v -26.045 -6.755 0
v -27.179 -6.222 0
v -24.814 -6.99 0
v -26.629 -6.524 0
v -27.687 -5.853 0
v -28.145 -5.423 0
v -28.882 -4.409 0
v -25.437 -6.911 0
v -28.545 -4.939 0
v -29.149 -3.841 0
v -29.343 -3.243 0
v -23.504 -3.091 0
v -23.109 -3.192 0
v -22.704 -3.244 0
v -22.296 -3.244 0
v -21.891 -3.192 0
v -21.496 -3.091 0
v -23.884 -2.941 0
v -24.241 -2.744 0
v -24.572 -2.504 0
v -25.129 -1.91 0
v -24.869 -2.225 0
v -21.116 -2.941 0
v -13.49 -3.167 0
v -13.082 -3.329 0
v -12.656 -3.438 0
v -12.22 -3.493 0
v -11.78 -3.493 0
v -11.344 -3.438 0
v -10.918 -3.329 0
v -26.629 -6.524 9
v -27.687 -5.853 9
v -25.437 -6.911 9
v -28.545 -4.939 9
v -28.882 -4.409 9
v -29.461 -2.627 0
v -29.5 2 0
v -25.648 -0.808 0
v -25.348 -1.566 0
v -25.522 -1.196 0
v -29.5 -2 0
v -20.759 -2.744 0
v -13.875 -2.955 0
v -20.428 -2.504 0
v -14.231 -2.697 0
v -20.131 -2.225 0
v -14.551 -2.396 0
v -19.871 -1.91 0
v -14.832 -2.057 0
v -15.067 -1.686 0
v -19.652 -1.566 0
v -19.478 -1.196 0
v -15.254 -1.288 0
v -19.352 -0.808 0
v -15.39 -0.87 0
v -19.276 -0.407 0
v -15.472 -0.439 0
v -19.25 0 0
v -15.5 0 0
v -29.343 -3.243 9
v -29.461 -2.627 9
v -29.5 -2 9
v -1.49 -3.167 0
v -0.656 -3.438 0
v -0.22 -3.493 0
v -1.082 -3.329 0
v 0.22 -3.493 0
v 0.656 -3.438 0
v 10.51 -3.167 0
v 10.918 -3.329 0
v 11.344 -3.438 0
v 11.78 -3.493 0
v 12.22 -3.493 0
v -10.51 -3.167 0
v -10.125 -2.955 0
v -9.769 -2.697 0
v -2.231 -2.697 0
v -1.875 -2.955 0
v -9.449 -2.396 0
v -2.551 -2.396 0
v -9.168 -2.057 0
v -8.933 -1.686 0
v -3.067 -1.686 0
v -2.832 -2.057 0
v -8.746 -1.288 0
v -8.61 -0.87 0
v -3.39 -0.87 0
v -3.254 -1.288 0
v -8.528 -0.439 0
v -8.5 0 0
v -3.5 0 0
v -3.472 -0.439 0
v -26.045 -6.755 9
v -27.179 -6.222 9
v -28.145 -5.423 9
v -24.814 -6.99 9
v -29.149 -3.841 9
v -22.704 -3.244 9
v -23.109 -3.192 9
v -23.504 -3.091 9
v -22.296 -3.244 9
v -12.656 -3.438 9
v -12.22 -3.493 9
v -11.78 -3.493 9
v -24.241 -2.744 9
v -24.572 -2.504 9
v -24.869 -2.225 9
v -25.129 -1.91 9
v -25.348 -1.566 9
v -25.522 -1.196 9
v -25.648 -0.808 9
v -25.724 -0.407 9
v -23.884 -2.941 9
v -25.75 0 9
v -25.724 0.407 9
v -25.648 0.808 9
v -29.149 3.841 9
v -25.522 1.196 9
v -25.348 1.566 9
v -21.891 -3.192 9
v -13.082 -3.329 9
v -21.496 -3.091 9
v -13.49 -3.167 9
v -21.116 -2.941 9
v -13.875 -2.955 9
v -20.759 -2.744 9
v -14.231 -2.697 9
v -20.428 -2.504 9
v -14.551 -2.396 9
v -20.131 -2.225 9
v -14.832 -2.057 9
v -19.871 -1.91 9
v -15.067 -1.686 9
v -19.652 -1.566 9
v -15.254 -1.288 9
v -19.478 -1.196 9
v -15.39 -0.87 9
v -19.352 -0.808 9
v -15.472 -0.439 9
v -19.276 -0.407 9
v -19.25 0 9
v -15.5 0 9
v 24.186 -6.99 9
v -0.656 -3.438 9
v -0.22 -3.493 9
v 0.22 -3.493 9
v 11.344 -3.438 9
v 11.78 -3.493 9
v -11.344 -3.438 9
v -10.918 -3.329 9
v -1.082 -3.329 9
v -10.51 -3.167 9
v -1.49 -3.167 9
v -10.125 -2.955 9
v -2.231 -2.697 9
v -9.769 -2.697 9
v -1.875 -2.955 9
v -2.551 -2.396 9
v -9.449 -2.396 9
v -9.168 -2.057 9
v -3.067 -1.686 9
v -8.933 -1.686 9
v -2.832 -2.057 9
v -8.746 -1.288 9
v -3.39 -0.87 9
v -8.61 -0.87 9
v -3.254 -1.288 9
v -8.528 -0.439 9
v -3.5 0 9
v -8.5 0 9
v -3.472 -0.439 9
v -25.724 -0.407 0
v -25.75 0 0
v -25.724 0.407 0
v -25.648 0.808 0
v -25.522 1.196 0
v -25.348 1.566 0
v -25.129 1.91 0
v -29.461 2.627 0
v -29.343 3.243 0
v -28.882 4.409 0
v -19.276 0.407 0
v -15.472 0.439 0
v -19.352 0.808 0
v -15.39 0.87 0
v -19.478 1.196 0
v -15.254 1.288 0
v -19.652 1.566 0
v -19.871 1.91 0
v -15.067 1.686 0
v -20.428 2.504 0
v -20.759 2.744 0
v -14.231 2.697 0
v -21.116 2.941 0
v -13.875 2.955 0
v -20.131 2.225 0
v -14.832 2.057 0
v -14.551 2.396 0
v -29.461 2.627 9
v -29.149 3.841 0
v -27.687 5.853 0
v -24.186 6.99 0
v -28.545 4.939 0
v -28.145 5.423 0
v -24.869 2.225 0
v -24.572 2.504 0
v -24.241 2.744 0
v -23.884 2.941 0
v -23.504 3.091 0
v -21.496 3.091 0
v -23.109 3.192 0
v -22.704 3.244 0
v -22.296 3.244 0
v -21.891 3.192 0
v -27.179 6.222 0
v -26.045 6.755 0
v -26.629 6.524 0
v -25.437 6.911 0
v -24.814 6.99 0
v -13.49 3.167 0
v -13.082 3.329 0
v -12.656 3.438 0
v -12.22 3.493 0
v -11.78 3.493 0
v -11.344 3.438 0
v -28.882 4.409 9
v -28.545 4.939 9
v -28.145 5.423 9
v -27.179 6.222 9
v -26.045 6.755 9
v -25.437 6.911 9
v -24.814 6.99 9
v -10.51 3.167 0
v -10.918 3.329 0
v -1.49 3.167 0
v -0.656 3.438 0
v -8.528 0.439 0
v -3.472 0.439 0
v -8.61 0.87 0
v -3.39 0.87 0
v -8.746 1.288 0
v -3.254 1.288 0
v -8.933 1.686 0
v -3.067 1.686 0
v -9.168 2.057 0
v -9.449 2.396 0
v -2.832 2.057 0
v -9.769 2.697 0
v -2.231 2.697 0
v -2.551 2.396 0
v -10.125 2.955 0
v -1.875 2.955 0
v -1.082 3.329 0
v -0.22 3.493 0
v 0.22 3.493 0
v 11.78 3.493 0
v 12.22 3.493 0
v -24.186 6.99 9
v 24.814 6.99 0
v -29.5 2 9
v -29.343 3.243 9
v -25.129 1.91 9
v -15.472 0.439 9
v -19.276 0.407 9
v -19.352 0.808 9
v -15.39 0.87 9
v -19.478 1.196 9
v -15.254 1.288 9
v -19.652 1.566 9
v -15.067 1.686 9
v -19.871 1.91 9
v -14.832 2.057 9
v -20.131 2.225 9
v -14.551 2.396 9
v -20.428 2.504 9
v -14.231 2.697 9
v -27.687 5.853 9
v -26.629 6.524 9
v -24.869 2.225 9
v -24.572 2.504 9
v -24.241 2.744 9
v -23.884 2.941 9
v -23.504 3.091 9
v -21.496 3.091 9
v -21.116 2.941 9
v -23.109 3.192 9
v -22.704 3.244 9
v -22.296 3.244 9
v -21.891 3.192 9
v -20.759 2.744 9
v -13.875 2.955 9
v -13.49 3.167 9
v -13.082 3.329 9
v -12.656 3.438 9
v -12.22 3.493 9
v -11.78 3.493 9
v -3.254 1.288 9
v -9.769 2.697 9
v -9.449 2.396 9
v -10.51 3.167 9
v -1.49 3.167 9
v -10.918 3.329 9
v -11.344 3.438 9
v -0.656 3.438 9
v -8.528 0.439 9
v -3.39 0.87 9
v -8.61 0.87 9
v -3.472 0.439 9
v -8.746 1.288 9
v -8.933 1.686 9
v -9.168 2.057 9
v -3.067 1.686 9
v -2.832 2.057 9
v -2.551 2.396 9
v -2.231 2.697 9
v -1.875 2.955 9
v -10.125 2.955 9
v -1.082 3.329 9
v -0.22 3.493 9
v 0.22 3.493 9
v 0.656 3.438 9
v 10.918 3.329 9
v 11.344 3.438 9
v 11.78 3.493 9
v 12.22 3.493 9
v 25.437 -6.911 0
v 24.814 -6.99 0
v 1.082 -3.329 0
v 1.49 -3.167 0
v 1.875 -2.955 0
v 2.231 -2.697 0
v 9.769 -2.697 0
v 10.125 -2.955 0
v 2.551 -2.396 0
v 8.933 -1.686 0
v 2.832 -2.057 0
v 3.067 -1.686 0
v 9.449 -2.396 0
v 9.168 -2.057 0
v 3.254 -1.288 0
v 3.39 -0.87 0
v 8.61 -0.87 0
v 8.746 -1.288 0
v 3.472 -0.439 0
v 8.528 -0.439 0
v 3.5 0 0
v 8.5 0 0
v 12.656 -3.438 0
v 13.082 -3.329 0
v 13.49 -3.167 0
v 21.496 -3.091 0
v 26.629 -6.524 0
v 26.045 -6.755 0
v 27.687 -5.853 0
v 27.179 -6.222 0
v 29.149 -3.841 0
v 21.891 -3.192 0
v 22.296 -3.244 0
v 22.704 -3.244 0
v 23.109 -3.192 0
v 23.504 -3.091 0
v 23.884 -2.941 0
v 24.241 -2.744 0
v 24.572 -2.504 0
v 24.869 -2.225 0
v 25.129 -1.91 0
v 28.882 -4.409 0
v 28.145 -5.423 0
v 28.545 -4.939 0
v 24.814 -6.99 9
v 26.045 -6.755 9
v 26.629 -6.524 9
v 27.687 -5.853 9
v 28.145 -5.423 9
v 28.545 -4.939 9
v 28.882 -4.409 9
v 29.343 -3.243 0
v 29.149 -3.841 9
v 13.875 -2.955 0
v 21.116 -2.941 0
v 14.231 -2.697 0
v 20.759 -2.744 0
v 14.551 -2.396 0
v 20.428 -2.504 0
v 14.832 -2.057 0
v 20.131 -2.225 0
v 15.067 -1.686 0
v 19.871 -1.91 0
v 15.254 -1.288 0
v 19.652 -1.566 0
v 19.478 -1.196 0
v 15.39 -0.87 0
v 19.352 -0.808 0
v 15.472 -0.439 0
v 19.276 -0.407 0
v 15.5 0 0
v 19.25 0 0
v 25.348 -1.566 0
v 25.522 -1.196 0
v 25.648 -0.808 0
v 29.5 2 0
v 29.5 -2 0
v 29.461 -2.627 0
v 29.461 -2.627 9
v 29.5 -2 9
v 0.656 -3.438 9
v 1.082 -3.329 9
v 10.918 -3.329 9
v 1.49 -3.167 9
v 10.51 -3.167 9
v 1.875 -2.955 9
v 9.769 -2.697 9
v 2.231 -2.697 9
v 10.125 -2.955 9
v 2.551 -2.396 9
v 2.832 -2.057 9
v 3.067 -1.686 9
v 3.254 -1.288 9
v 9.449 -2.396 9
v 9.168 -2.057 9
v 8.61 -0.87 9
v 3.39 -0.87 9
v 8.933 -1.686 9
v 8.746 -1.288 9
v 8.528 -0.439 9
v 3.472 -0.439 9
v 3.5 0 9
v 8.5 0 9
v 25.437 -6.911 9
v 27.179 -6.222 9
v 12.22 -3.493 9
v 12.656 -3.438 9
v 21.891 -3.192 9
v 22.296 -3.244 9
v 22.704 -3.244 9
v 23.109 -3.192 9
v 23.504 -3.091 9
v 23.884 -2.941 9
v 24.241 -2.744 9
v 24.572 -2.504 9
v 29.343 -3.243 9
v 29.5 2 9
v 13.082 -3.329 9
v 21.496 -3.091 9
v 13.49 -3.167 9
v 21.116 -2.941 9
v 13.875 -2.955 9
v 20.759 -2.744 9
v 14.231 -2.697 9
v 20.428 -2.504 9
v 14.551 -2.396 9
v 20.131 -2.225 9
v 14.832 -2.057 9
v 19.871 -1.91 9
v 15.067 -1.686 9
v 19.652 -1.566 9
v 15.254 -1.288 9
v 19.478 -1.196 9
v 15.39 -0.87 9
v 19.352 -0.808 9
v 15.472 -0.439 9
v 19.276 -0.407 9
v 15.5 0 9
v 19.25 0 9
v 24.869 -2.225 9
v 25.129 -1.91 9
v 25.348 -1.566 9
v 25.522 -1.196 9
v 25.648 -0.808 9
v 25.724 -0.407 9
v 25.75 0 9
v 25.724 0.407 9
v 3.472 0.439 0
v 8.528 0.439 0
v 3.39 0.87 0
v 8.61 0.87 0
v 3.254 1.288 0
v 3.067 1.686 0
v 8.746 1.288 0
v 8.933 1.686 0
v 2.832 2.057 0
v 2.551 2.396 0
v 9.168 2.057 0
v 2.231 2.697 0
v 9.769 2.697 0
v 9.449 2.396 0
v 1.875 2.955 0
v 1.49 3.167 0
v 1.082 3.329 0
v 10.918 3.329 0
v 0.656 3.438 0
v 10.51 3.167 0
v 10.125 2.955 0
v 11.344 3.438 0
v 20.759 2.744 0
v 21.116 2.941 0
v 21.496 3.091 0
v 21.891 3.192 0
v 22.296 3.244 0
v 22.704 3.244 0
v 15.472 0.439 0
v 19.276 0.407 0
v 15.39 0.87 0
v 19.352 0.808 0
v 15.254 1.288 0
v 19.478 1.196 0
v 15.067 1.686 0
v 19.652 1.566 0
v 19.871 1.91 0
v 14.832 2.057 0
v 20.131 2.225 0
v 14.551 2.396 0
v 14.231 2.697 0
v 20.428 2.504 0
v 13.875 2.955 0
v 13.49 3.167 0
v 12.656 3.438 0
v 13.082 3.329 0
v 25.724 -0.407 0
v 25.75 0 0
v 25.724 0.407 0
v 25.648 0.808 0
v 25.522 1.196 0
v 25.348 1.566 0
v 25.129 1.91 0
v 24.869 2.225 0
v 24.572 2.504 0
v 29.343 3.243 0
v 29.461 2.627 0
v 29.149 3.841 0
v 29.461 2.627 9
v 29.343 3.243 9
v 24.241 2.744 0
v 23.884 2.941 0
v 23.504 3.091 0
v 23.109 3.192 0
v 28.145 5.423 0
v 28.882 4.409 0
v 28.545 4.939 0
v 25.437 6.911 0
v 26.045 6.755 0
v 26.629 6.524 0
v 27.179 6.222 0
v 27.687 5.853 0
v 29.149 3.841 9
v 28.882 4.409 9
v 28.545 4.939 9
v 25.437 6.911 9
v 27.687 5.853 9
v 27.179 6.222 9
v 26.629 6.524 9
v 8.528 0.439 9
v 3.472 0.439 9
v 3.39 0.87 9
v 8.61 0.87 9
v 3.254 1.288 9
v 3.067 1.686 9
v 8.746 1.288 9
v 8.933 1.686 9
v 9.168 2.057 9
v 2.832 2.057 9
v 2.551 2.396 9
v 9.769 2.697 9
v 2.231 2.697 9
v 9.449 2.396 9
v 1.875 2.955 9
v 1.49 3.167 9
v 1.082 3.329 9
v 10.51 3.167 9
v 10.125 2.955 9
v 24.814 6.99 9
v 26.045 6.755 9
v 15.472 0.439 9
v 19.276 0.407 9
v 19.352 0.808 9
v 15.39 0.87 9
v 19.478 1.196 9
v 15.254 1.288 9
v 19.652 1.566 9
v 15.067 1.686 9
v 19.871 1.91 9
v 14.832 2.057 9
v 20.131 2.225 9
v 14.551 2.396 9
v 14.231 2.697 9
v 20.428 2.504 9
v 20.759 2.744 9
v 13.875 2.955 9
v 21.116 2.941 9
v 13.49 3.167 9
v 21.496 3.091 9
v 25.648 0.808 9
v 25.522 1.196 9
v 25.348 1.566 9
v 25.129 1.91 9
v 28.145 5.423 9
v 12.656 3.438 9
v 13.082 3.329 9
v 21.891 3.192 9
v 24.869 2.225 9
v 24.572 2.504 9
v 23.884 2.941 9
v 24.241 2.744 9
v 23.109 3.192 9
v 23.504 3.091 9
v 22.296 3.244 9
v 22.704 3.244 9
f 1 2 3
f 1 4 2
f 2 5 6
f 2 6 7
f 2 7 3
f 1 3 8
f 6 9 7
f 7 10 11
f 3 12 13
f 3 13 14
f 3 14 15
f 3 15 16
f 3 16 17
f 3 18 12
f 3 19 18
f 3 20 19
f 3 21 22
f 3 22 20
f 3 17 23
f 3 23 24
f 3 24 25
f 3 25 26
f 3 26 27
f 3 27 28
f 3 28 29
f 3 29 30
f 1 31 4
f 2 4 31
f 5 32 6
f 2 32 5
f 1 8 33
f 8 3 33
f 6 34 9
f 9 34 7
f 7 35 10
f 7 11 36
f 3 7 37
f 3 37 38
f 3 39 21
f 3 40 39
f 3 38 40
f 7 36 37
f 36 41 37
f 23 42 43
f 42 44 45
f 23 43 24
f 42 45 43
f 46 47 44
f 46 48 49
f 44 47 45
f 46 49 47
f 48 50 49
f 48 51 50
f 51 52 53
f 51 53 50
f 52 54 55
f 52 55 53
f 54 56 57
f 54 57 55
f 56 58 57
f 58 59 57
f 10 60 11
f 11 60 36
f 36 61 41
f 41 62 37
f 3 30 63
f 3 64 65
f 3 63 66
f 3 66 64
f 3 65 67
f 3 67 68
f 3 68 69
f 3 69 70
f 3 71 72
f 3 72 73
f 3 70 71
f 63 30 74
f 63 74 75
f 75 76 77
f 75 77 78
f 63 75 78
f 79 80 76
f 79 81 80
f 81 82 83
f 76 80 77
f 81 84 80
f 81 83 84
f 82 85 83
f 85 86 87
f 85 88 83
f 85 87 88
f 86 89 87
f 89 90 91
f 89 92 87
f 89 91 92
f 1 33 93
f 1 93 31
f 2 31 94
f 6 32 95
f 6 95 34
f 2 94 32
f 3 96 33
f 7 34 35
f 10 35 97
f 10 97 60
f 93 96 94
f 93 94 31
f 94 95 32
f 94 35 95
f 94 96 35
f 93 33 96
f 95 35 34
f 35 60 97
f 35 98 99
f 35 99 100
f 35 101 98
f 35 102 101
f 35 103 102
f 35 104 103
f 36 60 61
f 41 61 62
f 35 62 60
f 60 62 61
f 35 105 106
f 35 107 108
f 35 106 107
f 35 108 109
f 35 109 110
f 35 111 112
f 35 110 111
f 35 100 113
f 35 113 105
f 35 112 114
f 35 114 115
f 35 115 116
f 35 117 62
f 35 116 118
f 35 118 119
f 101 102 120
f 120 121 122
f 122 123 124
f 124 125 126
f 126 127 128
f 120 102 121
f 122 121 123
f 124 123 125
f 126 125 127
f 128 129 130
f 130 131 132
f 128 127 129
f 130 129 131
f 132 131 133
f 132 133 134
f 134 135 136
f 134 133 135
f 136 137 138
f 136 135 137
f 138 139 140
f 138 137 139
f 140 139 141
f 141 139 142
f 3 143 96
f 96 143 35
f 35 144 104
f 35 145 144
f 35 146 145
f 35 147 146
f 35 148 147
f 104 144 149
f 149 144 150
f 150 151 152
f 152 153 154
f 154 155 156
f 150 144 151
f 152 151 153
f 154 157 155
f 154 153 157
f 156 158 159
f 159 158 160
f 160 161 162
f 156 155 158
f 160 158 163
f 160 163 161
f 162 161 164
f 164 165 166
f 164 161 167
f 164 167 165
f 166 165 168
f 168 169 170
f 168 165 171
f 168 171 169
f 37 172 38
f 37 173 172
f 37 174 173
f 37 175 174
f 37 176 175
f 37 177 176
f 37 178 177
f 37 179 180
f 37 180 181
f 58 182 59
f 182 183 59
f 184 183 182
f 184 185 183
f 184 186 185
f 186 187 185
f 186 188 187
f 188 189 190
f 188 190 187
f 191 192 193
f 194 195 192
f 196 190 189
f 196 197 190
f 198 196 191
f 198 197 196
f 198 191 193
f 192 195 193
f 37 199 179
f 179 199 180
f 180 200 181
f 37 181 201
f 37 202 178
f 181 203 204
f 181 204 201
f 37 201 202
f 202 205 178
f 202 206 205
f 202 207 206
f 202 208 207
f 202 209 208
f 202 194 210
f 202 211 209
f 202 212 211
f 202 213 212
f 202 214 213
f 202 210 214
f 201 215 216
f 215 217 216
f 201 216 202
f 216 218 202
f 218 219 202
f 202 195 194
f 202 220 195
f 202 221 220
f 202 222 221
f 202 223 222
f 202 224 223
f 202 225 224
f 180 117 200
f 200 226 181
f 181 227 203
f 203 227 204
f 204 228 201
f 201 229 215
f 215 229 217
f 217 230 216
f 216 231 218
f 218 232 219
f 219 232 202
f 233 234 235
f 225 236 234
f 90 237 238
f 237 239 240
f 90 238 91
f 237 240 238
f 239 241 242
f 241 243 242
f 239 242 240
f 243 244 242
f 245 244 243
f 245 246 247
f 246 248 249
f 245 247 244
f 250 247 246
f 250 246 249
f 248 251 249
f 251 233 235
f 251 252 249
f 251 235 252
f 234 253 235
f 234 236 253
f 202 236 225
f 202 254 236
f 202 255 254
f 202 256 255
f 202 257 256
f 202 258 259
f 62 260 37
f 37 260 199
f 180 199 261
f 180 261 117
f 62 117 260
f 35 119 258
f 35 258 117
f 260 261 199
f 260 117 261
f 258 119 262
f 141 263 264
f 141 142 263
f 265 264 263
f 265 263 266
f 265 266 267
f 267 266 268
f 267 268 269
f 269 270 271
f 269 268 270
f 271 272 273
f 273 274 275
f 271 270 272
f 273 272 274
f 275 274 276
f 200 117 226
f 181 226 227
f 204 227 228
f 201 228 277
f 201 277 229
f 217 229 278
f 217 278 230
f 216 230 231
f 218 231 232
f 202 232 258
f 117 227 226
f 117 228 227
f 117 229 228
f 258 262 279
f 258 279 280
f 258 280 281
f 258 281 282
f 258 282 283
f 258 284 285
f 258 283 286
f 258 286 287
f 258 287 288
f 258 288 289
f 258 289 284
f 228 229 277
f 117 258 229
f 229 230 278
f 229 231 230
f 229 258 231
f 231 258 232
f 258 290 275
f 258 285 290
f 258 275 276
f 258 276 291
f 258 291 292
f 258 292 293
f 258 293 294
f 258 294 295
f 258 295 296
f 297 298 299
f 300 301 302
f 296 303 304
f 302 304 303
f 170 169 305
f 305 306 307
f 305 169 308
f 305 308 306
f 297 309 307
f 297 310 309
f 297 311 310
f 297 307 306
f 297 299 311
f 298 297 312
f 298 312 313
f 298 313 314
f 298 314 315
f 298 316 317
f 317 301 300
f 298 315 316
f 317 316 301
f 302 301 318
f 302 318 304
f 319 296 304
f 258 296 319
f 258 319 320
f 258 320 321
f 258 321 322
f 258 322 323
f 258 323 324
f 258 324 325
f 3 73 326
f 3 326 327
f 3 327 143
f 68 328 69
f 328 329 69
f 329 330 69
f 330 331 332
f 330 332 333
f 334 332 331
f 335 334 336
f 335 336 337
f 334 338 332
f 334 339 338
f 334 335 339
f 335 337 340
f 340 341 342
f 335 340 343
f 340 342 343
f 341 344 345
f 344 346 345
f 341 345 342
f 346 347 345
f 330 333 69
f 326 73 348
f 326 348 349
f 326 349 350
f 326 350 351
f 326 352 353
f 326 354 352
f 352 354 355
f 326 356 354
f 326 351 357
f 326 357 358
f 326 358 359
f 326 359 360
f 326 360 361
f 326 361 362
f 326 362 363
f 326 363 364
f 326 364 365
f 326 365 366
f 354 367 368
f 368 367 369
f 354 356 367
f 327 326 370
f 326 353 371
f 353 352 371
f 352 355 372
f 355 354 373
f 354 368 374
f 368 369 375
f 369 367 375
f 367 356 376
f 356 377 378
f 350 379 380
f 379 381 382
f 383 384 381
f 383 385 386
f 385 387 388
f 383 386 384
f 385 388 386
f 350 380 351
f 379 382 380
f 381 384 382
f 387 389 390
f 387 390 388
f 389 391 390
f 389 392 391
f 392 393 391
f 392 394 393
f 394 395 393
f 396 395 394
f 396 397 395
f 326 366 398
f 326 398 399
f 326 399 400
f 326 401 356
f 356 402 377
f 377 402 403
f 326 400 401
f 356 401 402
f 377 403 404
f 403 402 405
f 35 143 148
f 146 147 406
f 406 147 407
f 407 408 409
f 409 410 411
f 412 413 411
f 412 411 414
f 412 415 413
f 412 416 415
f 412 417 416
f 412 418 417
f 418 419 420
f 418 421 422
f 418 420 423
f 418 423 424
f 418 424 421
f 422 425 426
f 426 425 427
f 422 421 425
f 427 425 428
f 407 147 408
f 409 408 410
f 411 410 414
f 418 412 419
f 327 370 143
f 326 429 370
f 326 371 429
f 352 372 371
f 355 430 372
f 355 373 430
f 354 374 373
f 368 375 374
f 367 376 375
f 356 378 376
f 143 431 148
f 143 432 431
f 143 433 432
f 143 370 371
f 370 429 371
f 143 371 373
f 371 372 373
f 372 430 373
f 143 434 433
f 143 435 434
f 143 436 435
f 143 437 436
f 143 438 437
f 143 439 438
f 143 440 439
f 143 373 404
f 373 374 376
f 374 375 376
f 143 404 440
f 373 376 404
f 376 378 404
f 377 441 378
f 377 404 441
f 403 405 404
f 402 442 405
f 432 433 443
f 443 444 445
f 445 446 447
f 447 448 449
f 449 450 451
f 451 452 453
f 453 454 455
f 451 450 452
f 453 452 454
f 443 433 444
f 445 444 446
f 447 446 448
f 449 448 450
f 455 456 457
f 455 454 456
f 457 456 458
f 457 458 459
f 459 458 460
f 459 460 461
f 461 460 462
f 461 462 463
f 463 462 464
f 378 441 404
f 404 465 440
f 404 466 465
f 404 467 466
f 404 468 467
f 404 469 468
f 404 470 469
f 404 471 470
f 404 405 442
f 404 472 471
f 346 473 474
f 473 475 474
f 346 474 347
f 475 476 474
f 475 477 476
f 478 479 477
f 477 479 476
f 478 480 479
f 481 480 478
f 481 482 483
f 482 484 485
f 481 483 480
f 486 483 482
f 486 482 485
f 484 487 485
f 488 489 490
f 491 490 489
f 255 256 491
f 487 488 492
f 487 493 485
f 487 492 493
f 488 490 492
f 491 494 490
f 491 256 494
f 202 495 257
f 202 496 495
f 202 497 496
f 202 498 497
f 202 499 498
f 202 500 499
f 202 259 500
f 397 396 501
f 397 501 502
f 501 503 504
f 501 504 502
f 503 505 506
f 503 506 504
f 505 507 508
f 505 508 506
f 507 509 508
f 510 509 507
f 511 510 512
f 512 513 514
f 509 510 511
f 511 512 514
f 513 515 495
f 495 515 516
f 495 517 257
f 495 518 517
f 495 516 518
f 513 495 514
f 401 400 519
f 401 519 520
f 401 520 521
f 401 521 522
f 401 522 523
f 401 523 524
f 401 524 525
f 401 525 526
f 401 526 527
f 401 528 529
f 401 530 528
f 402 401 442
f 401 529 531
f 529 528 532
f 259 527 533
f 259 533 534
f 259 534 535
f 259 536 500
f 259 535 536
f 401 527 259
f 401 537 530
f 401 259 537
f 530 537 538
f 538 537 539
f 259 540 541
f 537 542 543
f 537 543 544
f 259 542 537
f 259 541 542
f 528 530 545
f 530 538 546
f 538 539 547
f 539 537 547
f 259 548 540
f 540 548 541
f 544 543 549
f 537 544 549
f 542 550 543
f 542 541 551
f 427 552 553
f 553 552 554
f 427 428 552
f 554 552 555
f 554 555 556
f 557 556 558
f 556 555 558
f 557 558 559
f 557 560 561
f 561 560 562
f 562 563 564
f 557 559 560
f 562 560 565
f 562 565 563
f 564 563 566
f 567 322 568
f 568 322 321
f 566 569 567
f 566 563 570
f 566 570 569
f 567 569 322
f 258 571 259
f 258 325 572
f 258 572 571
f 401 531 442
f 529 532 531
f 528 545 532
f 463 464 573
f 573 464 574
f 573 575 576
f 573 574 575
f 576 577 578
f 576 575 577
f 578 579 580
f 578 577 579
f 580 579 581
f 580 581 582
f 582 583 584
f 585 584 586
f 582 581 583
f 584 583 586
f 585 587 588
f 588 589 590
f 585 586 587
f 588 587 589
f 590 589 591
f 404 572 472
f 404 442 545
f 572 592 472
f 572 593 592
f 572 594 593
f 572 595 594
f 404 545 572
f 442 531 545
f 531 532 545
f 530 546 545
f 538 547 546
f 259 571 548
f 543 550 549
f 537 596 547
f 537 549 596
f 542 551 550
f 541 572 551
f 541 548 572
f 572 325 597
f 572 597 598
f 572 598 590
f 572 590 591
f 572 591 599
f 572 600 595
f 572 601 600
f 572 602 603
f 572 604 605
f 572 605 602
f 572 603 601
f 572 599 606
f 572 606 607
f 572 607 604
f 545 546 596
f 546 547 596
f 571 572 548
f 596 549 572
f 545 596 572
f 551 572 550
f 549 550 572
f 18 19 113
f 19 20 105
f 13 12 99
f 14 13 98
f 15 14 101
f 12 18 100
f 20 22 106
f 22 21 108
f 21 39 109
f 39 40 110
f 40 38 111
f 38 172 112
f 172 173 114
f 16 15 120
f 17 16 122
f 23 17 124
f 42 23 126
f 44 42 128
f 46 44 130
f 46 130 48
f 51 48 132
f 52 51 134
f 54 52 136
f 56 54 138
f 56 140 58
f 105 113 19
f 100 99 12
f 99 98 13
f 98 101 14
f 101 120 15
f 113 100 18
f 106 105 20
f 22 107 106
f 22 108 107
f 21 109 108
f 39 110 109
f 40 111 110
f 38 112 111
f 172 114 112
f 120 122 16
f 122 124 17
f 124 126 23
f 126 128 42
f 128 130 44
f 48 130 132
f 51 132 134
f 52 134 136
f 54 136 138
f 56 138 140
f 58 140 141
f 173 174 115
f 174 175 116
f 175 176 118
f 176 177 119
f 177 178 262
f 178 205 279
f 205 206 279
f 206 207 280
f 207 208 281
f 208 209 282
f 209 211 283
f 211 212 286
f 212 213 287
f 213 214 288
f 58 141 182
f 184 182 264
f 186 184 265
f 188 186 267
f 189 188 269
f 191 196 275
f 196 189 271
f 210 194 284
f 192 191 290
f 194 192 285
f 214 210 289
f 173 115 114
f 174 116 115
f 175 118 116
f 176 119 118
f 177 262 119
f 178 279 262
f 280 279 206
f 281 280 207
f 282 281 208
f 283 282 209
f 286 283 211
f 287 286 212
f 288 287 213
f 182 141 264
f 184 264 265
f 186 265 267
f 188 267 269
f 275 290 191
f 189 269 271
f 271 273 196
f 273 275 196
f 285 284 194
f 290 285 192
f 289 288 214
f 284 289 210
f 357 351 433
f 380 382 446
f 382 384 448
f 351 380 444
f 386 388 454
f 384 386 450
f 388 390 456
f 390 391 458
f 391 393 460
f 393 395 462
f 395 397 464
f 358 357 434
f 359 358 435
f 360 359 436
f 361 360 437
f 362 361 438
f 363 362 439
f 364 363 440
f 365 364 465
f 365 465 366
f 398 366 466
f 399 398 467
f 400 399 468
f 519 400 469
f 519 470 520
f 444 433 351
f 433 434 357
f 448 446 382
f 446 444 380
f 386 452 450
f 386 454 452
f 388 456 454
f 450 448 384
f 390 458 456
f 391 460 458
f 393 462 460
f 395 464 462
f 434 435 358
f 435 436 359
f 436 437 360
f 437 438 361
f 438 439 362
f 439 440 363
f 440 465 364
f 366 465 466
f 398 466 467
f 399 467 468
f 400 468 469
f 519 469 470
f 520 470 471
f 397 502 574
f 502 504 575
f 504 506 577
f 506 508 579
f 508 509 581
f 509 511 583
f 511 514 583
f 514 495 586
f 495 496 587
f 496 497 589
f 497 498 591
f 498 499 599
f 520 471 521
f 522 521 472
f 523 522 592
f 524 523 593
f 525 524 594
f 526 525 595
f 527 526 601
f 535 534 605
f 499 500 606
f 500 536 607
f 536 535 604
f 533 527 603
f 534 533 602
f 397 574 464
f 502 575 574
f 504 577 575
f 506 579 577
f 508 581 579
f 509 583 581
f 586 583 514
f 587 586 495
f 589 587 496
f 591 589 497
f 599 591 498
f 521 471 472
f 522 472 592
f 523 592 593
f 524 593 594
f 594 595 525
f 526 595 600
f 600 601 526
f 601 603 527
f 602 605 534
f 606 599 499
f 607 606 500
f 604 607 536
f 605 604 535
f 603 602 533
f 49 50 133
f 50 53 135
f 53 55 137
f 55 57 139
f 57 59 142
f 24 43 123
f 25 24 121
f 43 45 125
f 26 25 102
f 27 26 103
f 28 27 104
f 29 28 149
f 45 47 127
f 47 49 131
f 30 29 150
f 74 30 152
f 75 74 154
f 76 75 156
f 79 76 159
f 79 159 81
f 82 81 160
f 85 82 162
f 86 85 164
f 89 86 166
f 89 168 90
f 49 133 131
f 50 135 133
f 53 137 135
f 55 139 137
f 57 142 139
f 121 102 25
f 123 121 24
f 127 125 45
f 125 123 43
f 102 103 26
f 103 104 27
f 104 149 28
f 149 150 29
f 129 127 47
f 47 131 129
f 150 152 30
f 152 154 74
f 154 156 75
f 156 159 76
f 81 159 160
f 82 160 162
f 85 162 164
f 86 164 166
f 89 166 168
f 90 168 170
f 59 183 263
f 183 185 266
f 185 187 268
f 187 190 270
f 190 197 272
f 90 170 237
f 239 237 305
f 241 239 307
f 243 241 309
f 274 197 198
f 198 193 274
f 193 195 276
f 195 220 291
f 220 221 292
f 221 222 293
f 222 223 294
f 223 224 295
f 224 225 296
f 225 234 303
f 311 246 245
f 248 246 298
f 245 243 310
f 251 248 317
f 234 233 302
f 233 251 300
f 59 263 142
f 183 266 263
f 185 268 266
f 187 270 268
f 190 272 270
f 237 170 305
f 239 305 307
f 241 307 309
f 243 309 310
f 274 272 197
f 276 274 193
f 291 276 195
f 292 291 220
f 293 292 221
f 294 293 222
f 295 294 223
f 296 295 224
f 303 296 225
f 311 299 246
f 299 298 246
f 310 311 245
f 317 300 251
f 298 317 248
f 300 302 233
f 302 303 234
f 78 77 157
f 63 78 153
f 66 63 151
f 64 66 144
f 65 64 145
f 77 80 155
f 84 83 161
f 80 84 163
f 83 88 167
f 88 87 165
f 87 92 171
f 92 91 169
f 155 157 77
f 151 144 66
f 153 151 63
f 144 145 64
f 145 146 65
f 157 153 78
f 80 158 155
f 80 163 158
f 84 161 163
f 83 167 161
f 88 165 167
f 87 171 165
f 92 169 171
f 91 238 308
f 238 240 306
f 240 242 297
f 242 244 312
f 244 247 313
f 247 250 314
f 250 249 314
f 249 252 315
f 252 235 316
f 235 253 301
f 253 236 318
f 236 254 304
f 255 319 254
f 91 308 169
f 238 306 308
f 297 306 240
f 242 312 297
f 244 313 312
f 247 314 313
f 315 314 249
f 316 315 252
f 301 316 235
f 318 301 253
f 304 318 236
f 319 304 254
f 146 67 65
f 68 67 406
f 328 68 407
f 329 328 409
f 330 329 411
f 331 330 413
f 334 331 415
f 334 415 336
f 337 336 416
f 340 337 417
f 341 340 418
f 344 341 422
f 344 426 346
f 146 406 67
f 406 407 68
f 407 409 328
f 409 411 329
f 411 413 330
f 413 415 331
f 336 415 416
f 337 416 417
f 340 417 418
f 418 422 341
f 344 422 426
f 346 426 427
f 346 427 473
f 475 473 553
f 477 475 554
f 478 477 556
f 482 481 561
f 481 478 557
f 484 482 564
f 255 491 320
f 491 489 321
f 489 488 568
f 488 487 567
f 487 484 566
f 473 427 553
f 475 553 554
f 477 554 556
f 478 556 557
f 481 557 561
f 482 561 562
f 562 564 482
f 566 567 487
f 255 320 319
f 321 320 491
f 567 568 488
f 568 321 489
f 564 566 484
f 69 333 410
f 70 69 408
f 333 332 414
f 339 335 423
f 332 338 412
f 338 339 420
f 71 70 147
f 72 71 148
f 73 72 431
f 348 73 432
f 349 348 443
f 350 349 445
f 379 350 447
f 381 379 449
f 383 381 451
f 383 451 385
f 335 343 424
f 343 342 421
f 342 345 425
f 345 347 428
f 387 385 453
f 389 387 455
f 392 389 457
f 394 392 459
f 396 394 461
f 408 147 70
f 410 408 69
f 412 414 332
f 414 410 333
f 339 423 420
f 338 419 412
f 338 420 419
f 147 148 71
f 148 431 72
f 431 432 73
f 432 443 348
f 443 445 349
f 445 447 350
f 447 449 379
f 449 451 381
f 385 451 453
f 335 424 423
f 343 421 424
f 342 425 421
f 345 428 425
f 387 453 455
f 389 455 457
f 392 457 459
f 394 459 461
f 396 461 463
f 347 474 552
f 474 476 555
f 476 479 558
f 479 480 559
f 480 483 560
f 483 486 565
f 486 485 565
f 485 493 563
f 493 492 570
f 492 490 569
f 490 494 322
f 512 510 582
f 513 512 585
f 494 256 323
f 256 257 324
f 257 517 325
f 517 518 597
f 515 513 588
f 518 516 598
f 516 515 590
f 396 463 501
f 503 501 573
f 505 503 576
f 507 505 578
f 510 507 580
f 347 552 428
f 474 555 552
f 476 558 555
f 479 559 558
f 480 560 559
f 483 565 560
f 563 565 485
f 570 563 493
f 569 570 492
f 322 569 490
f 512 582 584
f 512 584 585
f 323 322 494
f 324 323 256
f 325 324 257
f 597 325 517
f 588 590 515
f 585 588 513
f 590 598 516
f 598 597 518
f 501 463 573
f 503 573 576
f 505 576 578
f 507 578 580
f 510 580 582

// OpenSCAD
$fn = 50;

difference() {
	union() {
		hull() {
			translate(v = [-24.5, 2.0, 0]) {
				cylinder(h = 9, r = 5);
			}
			translate(v = [24.5, 2.0, 0]) {
				cylinder(h = 9, r = 5);
			}
			translate(v = [-24.5, -2.0, 0]) {
				cylinder(h = 9, r = 5);
			}
			translate(v = [24.5, -2.0, 0]) {
				cylinder(h = 9, r = 5);
			}
		}
	}
	union() {
		translate(v = [-22.5, 0.0, 0]) {
			cylinder(h = 9, r = 3.25);
		}
		translate(v = [22.5, 0.0, 0]) {
			cylinder(h = 9, r = 3.25);
		}
		translate(v = [-12.0, 0, 0.0]) {
			cylinder(h = 9, r = 3.5);
		}
		cylinder(h = 9, r = 3.5);
		translate(v = [12.0, 0, 0.0]) {
			cylinder(h = 9, r = 3.5);
		}
	}
}
